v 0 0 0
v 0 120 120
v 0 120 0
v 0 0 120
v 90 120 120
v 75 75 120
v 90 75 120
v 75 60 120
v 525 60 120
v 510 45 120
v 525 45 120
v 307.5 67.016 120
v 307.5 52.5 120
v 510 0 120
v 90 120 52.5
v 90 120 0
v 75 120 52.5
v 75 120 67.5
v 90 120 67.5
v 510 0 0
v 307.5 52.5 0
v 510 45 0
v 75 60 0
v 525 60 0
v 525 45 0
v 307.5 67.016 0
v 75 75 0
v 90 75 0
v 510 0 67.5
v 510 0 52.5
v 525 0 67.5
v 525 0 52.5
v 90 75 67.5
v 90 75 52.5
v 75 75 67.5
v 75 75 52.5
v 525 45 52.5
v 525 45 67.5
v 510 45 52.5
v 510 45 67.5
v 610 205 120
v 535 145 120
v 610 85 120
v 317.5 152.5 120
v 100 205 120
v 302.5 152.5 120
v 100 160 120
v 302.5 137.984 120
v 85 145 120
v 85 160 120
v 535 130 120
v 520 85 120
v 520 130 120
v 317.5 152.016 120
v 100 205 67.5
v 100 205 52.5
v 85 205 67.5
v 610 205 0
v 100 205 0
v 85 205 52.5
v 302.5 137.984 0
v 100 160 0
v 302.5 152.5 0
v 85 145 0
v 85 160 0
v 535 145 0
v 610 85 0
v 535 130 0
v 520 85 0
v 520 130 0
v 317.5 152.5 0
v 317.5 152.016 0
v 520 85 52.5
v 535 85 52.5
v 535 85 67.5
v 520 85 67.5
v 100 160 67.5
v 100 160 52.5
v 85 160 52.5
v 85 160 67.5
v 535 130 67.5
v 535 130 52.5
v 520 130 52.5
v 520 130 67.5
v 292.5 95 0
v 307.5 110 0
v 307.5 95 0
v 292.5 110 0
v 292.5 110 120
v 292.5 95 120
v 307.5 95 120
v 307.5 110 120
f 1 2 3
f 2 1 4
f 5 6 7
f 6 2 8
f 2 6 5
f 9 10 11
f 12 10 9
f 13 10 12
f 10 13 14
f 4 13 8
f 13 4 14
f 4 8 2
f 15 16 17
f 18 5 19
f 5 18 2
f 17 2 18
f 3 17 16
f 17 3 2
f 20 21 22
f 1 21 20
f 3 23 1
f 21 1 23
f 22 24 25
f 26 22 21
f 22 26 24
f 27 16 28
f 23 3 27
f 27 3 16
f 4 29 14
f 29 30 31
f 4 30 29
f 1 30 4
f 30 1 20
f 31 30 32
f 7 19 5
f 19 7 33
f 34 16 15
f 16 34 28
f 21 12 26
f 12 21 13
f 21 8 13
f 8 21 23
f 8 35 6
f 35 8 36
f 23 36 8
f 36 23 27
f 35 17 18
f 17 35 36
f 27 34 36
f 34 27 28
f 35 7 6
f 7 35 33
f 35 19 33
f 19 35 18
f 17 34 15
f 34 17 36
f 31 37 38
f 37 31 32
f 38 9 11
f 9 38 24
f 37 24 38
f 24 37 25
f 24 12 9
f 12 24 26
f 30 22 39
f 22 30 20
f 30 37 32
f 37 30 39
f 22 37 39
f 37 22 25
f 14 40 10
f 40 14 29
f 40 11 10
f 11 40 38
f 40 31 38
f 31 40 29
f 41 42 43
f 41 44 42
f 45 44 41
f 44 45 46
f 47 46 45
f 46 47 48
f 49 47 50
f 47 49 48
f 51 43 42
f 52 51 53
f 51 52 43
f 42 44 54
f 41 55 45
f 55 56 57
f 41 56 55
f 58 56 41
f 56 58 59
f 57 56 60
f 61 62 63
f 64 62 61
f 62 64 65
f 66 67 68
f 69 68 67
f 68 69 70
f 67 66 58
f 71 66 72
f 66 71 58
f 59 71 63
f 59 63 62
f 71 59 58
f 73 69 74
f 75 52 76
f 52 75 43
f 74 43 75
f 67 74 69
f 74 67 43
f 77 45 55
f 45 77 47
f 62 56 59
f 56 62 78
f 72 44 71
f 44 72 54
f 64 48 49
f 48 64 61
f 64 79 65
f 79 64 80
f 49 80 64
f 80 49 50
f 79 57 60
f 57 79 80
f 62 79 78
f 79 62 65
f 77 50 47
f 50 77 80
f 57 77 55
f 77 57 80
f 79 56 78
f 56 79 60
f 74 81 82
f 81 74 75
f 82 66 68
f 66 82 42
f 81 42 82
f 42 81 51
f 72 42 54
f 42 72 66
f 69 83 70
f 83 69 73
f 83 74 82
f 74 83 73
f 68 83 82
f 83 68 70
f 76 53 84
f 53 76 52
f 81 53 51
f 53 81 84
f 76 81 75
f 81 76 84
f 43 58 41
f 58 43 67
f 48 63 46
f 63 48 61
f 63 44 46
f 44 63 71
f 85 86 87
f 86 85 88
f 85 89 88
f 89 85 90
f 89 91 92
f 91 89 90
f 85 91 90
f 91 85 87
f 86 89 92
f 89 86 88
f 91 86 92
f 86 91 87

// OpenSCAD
// file: common/board.scad
// board.scad

BOARD_DEFAULT_LENGTH = 600;
BOARD_DEFAULT_WIDTH = 120;
BOARD_DEFAULT_THICKNESS = 120;

function board_get_default_size()
    = [BOARD_DEFAULT_LENGTH, BOARD_DEFAULT_WIDTH, BOARD_DEFAULT_THICKNESS];

module board(size = board_get_default_size(), center = false)
{
    // size[0] is always with the grain
    // size[1] is against the grain
    // size[2] is the board thickness
    cube(size = size, center = center);
}
// main file
// kanawa_tsugi.scad

use <common/board.scad>

// ratio of the width
ABC_RATIO = 1/8;
LENGTH_RATIO = 3.5;

function kanawa_tsugi_male_offset(board_size = board_get_default_size())
    = (board_size[0]/2) - (board_size[1]*LENGTH_RATIO)/2 - (board_size[1]*ABC_RATIO);

function kanawa_tsugi_pin_xyoffset(board_size = board_get_default_size())
    = [
            kanawa_tsugi_male_offset(board_size) + (board_size[1]*LENGTH_RATIO)/2 + (board_size[1]*ABC_RATIO)/2,
            board_size[1]/2 - (board_size[1]*ABC_RATIO)/2];

module kanawa_tsugi_female(board_size = board_get_default_size())
{
    // measurements a == b == c
    abc = board_size[1] * ABC_RATIO;
    length = board_size[1] * LENGTH_RATIO;

    base_size = [
            length,
            board_size[1],
            board_size[2]];

    cutoutx_size = [
            length/2 + abc/2,
            board_size[1]/2,
            board_size[2]];

    cutoutz_size = [
            abc,
            board_size[1]/2 - abc,
            board_size[2]/2 - abc/2];

    base_startx = board_size[0]/2 - base_size[0]/2;

    ab_size = [
            abc,
            abc,
            board_size[2]];

    aby_size = [
            abc,
            board_size[1]/2,
            abc];

    cutoutm_size = [
            base_startx - abc,
            board_size[1],
            board_size[2]];

    slope_points = [
            [0, 0],
            [cutoutx_size[0] + abc, -abc/2],
            [cutoutx_size[0] + abc, 0]];

    difference()
    {
        board(board_size);

        translate([base_startx, board_size[1]/2, 0])
            cube(cutoutx_size);

        translate([base_startx - ab_size[0], board_size[1]/2, 0])
            linear_extrude(
                    height = board_size[2],
                    center = false,
                    convexity = 0,
                    twist = 0)
                polygon(points = slope_points);

        translate([base_startx - ab_size[0], board_size[1]/2, 0])
            cube(ab_size);

        translate([base_startx - ab_size[0], board_size[1]/2, board_size[2]/2 - abc/2])
            cube(aby_size);

        translate([base_startx + length/2 + abc/2, board_size[1]/2 + abc/2, 0])
            cube(cutoutx_size);

        translate([base_startx + length/2 - abc/2, board_size[1]/2 + abc/2, 0])
            linear_extrude(
                    height = board_size[2],
                    center = false,
                    convexity = 0,
                    twist = 0)
                polygon(points = slope_points);

        translate([base_startx + length + abc, 0, 0])
            cube(cutoutm_size);

        translate([base_startx + length, 0, 0])
            cube(cutoutz_size);

        translate([base_startx + length, 0, board_size[2]/2 + abc/2])
            cube(cutoutz_size);
    }
}

module kanawa_tsugi_pin(board_size = board_get_default_size())
{
    abc = board_size[1] * ABC_RATIO;

    pin_size = [
            board_size[2],
            abc,
            abc];

    rotate([0, -90, 0])
        translate([0, 0, -pin_size[2]])
            board(pin_size);
}

module kanawa_tsugi_male(board_size = board_get_default_size())
{
    xoffset = kanawa_tsugi_male_offset(board_size);
    pin_xyoffset = kanawa_tsugi_pin_xyoffset(board_size);

    translate([-xoffset, 0, 0])
        difference()
        {
            board(board_size);
            kanawa_tsugi_female(board_size);
            translate([pin_xyoffset[0], pin_xyoffset[1], 0])
                kanawa_tsugi_pin(board_size);
        }
}

module kanawa_tsugi_example(board_size = board_get_default_size())
{
    moffset = kanawa_tsugi_male_offset() + 10;
    pin_xyoffset = kanawa_tsugi_pin_xyoffset(board_size);

    kanawa_tsugi_female(board_size);

    translate([moffset, moffset, 0])
        kanawa_tsugi_male();

    translate([pin_xyoffset[0], pin_xyoffset[1] + moffset/2, 0])
        kanawa_tsugi_pin();
}

kanawa_tsugi_example();
